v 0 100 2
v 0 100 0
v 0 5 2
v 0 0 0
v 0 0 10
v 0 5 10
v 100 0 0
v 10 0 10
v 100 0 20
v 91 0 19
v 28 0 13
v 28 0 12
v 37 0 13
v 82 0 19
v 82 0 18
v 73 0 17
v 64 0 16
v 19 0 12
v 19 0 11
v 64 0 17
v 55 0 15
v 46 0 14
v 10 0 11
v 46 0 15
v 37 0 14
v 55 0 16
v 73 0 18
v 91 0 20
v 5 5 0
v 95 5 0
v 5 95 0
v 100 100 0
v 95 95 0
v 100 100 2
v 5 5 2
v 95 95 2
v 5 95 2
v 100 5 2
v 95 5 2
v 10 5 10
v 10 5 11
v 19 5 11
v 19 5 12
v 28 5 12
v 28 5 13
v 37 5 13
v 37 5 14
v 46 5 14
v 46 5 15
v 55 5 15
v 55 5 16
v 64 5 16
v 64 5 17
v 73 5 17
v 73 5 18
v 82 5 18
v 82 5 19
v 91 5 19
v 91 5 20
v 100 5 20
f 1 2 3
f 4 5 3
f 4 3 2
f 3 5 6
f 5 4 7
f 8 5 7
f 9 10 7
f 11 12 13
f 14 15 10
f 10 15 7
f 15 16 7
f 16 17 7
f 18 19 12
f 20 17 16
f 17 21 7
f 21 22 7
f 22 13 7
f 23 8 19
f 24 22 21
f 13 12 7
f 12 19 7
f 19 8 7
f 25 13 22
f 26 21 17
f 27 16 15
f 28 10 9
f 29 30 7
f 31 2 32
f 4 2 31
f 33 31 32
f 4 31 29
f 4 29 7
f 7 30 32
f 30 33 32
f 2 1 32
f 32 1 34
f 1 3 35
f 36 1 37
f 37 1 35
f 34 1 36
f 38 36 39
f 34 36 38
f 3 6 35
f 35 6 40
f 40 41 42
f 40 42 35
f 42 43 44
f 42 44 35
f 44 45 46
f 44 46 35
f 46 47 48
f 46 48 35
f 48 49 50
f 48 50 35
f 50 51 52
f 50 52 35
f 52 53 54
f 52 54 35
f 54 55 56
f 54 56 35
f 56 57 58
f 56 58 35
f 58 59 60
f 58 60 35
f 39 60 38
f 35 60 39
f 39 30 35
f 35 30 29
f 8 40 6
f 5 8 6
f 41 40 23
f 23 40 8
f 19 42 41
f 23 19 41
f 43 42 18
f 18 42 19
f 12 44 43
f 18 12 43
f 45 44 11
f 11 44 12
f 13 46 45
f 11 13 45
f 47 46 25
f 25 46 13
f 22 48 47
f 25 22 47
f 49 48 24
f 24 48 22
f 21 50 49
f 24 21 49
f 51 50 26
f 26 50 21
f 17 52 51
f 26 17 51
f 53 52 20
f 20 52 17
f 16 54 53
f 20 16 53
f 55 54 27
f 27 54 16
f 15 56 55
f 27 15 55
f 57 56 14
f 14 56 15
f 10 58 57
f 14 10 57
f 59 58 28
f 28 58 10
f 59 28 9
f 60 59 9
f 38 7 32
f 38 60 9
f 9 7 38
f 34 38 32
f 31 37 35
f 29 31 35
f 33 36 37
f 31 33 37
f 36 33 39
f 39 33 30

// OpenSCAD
// Calibration piece for RepRap

difference()
{
  cube([100,100,2], center=false);
  translate([5,5,-1]) cube([90, 90, 4], center=false);
};

module step()
{
  cube([100,5,20]);
}

module steps()
{
  for ( i = [0:10] )
  {
    translate([-i*9,0,20-i]) cube([100,5,20], center=false);
  }
}

difference()
{
  step();
  steps();
}
